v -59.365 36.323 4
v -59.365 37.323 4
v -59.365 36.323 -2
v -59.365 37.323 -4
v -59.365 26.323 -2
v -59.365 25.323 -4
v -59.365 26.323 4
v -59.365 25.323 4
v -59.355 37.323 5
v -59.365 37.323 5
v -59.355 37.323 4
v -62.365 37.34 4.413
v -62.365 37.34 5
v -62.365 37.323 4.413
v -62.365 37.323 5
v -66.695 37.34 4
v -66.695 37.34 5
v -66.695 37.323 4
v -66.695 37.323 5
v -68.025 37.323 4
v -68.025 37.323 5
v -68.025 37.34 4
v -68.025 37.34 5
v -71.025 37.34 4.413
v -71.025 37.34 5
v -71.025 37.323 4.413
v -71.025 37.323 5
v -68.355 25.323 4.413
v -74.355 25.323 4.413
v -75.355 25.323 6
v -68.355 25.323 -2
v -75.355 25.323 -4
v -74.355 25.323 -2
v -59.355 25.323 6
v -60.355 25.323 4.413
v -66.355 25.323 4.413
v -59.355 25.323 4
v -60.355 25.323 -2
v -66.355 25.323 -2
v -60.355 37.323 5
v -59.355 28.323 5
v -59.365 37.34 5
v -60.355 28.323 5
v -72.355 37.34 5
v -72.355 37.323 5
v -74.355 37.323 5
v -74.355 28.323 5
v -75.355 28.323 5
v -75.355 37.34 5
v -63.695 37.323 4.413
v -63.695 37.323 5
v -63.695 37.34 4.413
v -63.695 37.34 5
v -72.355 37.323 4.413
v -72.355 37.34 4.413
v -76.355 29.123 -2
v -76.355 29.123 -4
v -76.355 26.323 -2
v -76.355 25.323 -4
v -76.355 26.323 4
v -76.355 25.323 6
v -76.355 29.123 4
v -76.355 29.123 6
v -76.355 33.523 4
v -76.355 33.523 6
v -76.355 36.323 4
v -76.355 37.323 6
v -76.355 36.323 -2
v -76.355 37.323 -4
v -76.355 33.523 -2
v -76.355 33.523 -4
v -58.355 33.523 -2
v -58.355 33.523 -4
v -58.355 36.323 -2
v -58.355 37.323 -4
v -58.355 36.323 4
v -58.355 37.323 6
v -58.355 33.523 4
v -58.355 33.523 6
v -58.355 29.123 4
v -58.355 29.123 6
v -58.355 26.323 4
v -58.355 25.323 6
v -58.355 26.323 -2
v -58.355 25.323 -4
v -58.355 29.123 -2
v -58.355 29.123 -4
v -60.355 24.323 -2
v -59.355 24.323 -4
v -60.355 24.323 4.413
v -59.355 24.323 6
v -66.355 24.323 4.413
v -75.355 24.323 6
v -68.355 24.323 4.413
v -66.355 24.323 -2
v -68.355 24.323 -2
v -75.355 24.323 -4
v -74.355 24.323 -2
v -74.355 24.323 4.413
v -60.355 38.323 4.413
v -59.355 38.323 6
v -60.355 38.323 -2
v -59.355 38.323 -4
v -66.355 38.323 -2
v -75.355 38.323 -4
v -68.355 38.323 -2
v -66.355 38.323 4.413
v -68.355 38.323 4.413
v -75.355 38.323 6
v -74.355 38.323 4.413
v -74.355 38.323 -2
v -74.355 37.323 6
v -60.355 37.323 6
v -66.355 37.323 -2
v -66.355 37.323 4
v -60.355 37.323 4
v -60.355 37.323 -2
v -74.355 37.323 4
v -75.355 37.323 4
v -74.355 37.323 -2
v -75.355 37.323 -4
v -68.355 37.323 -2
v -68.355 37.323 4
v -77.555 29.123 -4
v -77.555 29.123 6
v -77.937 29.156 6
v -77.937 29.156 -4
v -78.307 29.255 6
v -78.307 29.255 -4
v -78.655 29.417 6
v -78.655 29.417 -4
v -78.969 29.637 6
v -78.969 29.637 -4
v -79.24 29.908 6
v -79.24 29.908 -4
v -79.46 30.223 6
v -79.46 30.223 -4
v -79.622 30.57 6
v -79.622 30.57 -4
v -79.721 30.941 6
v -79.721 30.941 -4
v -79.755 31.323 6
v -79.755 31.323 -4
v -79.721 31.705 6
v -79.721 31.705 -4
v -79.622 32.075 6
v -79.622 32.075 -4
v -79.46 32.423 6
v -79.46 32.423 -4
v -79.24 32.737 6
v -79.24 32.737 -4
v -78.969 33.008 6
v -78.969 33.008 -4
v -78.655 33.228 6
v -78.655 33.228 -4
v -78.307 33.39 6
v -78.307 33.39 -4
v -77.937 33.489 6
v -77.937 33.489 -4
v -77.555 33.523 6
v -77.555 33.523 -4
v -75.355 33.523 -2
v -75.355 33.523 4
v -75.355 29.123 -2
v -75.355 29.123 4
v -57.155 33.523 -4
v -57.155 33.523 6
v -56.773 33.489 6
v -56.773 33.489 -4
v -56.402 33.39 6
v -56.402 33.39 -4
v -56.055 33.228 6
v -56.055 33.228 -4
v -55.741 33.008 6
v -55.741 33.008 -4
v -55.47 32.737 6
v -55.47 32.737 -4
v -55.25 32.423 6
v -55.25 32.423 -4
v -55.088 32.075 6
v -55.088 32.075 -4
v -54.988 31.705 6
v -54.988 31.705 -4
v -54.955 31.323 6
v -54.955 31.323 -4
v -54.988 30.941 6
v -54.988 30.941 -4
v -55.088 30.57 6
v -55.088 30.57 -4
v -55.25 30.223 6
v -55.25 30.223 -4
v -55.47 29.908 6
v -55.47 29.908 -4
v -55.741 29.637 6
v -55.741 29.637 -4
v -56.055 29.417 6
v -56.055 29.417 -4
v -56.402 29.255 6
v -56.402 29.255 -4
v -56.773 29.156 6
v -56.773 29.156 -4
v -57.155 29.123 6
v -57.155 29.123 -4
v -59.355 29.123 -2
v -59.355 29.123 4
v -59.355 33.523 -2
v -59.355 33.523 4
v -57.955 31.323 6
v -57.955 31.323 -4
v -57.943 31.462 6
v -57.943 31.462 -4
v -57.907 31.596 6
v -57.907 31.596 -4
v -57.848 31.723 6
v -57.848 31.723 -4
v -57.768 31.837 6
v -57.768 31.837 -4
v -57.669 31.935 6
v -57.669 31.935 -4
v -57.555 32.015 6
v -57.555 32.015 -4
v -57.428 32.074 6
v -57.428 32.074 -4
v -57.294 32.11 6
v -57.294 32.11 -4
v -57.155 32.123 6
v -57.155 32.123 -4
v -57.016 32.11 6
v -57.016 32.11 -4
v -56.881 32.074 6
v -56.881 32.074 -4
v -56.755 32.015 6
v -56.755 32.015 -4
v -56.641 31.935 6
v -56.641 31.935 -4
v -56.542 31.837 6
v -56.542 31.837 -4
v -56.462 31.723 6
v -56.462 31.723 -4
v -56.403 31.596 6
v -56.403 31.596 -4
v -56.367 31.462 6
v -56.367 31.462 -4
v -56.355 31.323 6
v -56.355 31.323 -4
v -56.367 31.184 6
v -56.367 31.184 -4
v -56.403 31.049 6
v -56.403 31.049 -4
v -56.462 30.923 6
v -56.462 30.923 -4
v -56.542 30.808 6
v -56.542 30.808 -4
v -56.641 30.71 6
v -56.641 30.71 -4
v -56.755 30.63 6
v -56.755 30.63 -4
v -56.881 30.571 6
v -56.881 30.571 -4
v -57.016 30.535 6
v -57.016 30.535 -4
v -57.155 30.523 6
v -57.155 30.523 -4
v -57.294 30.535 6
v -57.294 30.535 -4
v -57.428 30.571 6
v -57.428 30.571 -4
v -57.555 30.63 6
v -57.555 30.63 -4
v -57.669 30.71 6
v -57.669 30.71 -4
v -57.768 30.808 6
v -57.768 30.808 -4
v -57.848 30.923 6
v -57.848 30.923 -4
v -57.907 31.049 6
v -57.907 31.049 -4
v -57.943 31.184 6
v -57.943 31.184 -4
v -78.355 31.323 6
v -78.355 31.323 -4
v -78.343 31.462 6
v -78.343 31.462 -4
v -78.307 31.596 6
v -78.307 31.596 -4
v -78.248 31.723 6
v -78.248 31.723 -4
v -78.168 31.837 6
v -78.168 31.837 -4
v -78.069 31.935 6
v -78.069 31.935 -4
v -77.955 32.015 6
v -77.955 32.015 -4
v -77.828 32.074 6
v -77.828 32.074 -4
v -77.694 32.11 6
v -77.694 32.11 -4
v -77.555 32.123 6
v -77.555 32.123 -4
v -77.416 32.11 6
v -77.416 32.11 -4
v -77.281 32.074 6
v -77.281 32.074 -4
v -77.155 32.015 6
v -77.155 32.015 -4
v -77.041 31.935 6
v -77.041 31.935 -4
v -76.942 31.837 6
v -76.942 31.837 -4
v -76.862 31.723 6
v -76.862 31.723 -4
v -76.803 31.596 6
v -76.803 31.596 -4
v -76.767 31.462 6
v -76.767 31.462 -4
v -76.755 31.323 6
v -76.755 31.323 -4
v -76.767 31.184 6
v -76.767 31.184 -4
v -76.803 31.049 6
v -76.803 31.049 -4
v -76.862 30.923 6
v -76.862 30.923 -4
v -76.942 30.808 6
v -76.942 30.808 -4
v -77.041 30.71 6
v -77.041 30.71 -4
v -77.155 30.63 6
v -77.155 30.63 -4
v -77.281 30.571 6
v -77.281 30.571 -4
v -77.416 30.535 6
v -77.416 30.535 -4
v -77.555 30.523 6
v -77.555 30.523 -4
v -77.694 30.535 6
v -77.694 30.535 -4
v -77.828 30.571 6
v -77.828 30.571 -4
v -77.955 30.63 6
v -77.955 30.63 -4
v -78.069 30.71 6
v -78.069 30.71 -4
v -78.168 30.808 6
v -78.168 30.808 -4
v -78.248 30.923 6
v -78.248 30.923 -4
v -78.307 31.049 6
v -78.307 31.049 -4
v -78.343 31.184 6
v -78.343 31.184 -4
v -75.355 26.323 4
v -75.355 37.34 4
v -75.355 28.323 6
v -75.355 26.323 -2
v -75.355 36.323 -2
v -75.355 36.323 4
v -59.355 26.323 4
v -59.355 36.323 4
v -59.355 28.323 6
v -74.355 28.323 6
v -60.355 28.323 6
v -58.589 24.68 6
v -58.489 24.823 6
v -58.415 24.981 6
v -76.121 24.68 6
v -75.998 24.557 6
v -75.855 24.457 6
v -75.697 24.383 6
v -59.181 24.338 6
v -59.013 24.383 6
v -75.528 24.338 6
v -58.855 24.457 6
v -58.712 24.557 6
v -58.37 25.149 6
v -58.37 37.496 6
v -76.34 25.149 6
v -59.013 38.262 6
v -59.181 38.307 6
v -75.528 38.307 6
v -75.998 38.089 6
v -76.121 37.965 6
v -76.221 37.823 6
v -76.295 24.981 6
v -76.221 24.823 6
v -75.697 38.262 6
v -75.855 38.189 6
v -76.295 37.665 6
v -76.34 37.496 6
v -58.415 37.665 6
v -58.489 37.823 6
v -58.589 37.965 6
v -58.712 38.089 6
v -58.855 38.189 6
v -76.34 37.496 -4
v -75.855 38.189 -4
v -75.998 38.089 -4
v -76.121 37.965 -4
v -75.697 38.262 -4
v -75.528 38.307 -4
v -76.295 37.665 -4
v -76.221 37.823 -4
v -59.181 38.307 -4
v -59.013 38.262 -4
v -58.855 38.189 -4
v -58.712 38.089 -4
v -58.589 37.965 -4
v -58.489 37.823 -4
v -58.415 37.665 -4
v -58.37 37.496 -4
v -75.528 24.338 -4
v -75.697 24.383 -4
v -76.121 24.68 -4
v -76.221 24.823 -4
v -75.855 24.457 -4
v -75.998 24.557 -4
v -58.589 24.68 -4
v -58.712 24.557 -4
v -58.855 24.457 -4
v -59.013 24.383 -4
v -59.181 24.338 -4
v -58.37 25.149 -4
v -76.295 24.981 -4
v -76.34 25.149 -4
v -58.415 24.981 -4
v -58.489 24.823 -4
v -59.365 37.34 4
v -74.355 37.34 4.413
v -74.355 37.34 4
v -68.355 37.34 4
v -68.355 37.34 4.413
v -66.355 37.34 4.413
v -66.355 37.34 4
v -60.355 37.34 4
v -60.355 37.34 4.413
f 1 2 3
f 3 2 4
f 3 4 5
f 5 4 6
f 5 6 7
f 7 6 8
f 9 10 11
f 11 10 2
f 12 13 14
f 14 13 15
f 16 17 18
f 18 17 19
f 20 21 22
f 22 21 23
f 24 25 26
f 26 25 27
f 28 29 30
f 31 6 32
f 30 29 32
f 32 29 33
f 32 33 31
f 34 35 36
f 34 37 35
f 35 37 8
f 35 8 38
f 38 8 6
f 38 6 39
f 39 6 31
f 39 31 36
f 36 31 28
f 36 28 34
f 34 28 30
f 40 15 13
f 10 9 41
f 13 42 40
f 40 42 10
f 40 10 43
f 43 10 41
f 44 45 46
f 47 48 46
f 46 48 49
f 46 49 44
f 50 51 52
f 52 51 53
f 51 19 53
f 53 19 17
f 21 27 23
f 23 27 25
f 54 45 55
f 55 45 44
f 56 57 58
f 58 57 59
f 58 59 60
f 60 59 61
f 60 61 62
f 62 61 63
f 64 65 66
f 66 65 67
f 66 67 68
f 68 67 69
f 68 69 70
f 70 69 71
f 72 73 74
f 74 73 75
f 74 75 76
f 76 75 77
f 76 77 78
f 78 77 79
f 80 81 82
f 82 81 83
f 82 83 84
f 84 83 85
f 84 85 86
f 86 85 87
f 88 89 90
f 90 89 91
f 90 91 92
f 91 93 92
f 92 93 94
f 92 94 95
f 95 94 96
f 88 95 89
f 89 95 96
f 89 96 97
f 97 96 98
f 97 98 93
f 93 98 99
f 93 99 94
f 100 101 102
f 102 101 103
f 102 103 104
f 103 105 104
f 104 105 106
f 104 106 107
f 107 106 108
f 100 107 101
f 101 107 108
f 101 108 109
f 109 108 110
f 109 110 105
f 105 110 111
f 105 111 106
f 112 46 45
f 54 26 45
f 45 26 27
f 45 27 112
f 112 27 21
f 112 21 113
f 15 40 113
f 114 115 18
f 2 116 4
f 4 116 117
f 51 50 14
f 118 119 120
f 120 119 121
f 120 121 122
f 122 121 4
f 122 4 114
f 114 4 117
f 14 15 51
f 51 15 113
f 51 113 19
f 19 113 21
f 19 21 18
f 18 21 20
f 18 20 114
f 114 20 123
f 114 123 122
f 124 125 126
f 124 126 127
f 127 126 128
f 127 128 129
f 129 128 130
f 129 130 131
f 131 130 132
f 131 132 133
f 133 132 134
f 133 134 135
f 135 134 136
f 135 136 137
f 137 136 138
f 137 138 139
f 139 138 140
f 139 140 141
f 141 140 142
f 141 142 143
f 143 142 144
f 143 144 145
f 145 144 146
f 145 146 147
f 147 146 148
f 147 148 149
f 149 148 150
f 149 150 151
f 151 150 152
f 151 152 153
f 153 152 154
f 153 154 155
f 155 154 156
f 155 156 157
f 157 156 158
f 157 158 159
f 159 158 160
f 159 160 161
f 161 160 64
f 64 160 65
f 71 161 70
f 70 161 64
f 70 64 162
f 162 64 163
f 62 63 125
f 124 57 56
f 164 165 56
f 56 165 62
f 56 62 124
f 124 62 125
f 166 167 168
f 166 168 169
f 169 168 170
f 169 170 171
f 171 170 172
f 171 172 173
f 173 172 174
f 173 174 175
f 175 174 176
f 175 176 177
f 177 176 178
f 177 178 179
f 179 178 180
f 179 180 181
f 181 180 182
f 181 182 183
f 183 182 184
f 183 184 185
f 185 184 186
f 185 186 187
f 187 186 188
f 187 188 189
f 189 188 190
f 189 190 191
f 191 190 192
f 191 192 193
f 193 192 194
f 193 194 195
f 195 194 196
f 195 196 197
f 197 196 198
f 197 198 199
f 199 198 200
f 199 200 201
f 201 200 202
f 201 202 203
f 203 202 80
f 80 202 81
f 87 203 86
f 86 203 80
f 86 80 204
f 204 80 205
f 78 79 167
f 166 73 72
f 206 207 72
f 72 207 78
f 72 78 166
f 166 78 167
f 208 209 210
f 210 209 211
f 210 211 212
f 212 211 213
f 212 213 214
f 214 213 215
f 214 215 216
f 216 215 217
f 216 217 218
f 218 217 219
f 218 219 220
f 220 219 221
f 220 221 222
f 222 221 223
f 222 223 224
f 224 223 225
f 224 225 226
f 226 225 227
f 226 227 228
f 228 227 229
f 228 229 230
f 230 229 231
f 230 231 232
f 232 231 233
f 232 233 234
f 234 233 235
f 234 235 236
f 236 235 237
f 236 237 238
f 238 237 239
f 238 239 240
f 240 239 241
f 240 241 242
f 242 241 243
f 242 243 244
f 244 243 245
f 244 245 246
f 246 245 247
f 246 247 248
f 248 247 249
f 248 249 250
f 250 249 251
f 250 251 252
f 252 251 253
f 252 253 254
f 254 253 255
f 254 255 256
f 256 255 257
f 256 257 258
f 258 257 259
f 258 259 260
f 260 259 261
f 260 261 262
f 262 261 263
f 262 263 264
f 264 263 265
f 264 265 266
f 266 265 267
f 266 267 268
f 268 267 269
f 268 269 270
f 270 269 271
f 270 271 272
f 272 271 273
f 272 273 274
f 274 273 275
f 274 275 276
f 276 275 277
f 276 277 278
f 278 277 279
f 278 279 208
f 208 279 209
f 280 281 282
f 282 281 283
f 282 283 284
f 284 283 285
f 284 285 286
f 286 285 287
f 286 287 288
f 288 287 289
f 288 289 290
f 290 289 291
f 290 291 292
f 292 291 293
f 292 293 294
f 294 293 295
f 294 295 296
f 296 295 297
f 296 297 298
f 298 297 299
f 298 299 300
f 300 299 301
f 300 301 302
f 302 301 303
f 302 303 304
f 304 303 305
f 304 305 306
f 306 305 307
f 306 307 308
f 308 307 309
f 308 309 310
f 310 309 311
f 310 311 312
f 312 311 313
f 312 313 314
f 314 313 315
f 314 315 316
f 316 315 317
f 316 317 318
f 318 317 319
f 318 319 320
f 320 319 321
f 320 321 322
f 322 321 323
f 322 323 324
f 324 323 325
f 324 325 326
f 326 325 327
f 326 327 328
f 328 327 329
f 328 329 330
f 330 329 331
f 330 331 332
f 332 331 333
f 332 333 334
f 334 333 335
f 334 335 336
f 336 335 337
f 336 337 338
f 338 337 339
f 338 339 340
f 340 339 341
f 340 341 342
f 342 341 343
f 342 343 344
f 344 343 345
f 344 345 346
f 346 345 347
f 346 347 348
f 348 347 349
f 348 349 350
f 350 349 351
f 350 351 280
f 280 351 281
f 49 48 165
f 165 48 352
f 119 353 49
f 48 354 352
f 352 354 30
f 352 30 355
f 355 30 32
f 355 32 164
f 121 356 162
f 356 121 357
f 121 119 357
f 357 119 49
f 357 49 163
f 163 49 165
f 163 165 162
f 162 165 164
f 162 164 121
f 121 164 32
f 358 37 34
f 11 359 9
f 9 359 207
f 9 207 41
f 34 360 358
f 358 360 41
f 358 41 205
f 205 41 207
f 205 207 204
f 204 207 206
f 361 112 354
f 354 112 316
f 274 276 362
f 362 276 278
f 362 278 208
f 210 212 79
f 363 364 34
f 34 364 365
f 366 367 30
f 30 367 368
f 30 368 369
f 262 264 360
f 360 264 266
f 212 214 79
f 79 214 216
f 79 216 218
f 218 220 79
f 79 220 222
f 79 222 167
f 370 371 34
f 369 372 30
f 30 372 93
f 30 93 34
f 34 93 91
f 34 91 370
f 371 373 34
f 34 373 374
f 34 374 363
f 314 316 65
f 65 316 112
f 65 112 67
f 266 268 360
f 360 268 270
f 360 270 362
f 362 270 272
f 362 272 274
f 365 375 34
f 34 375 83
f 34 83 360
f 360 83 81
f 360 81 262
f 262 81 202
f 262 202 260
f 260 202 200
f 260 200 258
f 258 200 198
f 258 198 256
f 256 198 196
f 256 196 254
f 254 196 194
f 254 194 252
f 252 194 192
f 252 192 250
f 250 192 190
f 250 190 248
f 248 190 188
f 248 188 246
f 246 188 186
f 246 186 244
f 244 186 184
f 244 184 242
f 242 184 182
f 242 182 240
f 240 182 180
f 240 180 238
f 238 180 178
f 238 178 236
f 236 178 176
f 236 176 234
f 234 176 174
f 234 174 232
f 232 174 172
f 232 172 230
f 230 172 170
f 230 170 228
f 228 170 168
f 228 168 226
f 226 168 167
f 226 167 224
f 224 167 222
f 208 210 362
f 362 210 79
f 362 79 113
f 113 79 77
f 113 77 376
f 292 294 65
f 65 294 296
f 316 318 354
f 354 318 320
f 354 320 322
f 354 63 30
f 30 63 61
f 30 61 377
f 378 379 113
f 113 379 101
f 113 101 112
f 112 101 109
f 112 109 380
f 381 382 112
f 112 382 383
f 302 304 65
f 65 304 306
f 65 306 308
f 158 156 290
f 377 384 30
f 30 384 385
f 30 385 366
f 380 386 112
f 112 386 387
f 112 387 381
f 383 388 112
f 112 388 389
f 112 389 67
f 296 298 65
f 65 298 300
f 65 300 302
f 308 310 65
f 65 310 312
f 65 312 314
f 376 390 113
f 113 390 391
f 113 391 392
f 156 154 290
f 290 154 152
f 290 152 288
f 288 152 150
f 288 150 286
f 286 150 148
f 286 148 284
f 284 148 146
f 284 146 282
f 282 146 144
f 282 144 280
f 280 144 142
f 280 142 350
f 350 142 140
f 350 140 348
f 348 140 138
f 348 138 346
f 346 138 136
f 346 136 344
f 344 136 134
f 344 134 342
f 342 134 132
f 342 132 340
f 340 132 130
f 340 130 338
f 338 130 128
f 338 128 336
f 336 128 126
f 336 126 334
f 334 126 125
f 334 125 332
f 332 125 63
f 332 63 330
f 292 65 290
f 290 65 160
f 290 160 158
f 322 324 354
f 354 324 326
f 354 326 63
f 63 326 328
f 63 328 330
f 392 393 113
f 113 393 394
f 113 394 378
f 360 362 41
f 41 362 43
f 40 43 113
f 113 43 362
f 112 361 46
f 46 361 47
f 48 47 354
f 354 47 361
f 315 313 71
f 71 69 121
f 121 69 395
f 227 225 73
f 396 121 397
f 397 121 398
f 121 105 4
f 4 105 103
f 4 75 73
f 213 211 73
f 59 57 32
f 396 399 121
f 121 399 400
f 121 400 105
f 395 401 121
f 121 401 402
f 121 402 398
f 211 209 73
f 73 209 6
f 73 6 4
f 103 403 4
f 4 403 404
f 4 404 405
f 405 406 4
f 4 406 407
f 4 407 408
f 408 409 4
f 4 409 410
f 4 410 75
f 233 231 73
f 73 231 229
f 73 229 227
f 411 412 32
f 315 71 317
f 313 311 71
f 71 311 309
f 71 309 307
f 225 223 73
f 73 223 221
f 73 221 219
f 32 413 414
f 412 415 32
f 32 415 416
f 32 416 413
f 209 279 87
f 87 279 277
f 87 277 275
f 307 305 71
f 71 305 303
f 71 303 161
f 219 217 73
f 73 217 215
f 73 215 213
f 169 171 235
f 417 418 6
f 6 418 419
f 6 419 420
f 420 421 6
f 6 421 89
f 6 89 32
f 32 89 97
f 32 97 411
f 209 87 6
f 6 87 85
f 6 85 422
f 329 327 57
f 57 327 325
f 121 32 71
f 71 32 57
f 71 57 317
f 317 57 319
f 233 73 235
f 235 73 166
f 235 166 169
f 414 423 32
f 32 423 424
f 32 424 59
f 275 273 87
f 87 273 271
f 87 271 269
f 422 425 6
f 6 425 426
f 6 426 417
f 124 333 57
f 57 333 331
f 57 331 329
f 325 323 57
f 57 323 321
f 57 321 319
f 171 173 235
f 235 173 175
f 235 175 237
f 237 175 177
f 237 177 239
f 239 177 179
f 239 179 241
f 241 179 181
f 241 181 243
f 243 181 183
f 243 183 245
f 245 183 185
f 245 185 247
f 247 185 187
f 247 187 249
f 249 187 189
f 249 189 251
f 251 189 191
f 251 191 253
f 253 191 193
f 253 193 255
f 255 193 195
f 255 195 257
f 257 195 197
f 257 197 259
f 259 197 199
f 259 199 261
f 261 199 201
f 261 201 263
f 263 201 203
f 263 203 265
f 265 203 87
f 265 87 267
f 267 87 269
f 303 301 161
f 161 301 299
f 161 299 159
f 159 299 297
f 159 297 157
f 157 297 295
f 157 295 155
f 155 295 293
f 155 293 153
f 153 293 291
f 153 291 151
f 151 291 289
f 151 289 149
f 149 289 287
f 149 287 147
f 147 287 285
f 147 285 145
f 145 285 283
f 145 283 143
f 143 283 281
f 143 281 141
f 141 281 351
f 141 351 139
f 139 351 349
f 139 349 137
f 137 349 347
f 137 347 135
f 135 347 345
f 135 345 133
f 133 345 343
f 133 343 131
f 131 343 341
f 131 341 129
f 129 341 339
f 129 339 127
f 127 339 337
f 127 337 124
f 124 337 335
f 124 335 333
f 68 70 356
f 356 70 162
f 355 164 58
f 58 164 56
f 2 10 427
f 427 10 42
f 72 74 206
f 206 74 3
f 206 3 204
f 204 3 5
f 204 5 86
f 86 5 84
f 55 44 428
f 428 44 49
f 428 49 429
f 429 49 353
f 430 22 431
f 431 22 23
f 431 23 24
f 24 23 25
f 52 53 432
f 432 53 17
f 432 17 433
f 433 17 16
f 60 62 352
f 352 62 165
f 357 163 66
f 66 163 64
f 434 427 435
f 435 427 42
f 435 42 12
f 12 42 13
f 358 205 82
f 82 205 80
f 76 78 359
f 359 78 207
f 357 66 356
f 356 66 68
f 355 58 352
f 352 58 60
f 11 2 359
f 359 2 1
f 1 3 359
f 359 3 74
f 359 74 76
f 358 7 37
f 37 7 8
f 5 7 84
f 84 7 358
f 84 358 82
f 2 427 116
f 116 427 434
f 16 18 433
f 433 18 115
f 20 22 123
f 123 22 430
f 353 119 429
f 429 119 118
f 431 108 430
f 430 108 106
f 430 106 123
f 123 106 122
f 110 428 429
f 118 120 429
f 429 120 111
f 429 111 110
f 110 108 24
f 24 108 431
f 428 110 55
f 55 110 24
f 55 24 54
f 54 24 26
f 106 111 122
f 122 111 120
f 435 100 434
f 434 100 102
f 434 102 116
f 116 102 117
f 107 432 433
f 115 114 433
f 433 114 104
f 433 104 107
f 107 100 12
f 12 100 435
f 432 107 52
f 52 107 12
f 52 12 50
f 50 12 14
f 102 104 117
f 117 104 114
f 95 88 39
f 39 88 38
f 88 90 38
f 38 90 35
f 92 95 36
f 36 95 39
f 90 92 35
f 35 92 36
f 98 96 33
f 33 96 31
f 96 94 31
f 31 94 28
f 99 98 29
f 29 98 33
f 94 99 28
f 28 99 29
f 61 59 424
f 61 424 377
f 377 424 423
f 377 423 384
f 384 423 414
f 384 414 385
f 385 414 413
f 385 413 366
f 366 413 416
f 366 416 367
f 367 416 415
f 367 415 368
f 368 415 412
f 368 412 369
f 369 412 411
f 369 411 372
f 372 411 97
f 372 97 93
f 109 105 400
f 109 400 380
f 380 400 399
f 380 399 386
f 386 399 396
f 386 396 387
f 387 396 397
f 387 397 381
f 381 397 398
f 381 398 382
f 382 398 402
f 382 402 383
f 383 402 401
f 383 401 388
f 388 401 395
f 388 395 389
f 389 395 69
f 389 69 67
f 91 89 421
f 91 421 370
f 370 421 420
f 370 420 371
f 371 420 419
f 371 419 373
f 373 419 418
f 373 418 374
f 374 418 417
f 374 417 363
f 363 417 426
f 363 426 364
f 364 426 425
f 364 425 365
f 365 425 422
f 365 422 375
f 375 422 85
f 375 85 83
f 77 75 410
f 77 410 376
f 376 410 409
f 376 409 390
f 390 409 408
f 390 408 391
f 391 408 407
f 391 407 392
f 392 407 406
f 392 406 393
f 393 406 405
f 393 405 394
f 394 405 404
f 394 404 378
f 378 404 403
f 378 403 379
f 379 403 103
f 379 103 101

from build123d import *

# Parameters (mm, degrees)
SKETCH_2_W           = 18
SKETCH_2_H           = 14
EXTRUDE_1_DEPTH      = 4
SHELL_1_T            = -1
SKETCH_3_W           = 2.5
SKETCH_3_H           = 2
CUT_EXTRUDE_1_DEPTH  = 4
SKETCH_4_W           = 1.5
SKETCH_4_H           = 6
EXTRUDE_2_DEPTH      = 5
SKETCH_5_W           = 1.5
SKETCH_5_H           = 6
EXTRUDE_3_DEPTH      = 5
SKETCH_6_R           = 1.1
CUT_EXTRUDE_2_DEPTH  = 5
FILLET_1_R           = 3
SKETCH_7_W           = 5.917960412
SKETCH_7_H           = 8.297832083
CUT_EXTRUDE_3_DEPTH  = 10
SKETCH_8_R           = 0.7
EXTRUDE_5_DEPTH      = 3
SKETCH_9_W           = 5.283067479
SKETCH_9_H           = 7.875128382
CUT_EXTRUDE_6_DEPTH  = 3
SKETCH_10_R          = 0.7
EXTRUDE_6_DEPTH      = 3
SKETCH_11_R          = 0.7
EXTRUDE_7_DEPTH      = 1
FILLET_6_R           = 1
SKETCH_12_W          = 30.892671625
SKETCH_12_H          = 21.919086058
CUT_EXTRUDE_7_DEPTH  = 1
SKETCH_13_W          = 18
SKETCH_13_H          = 14
SKETCH_13_W_2        = 16
SKETCH_13_H_2        = 12
EXTRUDE_8_DEPTH      = 2
EXTRUDE_START        = 2
SKETCH_14_R          = 0.7
EXTRUDE_9_DEPTH      = 2
SKETCH_15_W          = 2
SKETCH_15_H          = 10
EXTRUDE_11_DEPTH     = 1
SKETCH_16_W          = 3
SKETCH_16_H          = 3
CUT_EXTRUDE_9_DEPTH  = 82.19627022
SKETCH_17_R          = 1.2
CUT_EXTRUDE_10_DEPTH = 89.625360281
SKETCH_18_W          = 18
SKETCH_18_H          = 14
SKETCH_18_W_2        = 16
SKETCH_18_H_2        = 12
EXTRUDE_12_DEPTH     = 10
SKETCH_19_R          = 1.2
SKETCH_19_R_2        = 0.8
EXTRUDE_14_DEPTH     = 5
SKETCH_20_R          = 0.8
EXTRUDE_15_DEPTH     = 10
SKETCH_21_W          = 2.939386231
SKETCH_21_H          = 10
SKETCH_21_W_2        = 3
SKETCH_21_W_3        = 3.044568854
CUT_EXTRUDE_11_DEPTH = 82.472905297
SKETCH_22_W          = 13
SKETCH_22_H          = 3.8
CUT_EXTRUDE_12_DEPTH = 45.806028471
SKETCH_23_W          = 27.889217439
SKETCH_23_H          = 16.978710397
CUT_EXTRUDE_13_DEPTH = 5
SKETCH_24_W          = 18
SKETCH_24_H          = 14
SKETCH_24_W_2        = 15.99
SKETCH_24_H_2        = 12
EXTRUDE_16_DEPTH     = 2
SKETCH_25_W          = 18
SKETCH_25_H          = 14
SKETCH_25_W_2        = 16
SKETCH_25_H_2        = 12.017260671
EXTRUDE_17_DEPTH     = 2
SKETCH_26_W          = 6
SKETCH_26_H          = 1
EXTRUDE_18_DEPTH     = 1
SKETCH_27_W          = 6
SKETCH_27_H          = 1
EXTRUDE_19_DEPTH     = 1.01
SKETCH_28_W          = 15.99
SKETCH_28_H          = 6
EXTRUDE_20_DEPTH     = 1
EXTRUDE_START_2      = -1
SKETCH_29_W          = 15.99
SKETCH_29_H          = 6
EXTRUDE_21_DEPTH     = 1
SKETCH_30_W          = 6
SKETCH_30_H          = 6.412534926
CUT_EXTRUDE_14_DEPTH = 82.19627022
FILLET_7_R           = 1


# Some blends are built 0.0001 mm under size
with BuildPart() as part:
    # Эскиз2 → Бобышка-Вытянуть1 (new body)
    with BuildSketch(Plane.XY):
        with Locations((-67.35483871, 31.322580645)):
            Rectangle(SKETCH_2_W, SKETCH_2_H)
    extrude(amount=EXTRUDE_1_DEPTH)

    # Оболочка1
    shell_1_openings = [part.faces().sort_by_distance(p)[0] for p in [
        (-67.35483871, 31.322580645, 4),
    ]]
    offset(amount=SHELL_1_T, openings=shell_1_openings, kind=Kind.INTERSECTION)

    # Эскиз3 → Вырез-Вытянуть1 (cut)
    with BuildSketch(Plane.XY.offset(1)):
        with Locations((-69.60483871, 36.322580645)):
            Rectangle(SKETCH_3_W, SKETCH_3_H)
        with Locations((-74.10483871, 36.322580645)):
            Rectangle(SKETCH_3_W, SKETCH_3_H)
        with Locations((-65.10483871, 36.322580645)):
            Rectangle(SKETCH_3_W, SKETCH_3_H)
        with Locations((-60.60483871, 36.322580645)):
            Rectangle(SKETCH_3_W, SKETCH_3_H)
        with Locations((-69.60483871, 32.992580645)):
            Rectangle(SKETCH_3_W, SKETCH_3_H)
        with Locations((-65.10483871, 32.992580645)):
            Rectangle(SKETCH_3_W, SKETCH_3_H)
        with Locations((-60.60483871, 32.992580645)):
            Rectangle(SKETCH_3_W, SKETCH_3_H)
        with Locations((-69.60483871, 29.662580645)):
            Rectangle(SKETCH_3_W, SKETCH_3_H)
        with Locations((-65.10483871, 29.662580645)):
            Rectangle(SKETCH_3_W, SKETCH_3_H)
        with Locations((-60.60483871, 29.662580645)):
            Rectangle(SKETCH_3_W, SKETCH_3_H)
        with Locations((-69.60483871, 26.332580645)):
            Rectangle(SKETCH_3_W, SKETCH_3_H)
        with Locations((-65.10483871, 26.332580645)):
            Rectangle(SKETCH_3_W, SKETCH_3_H)
        with Locations((-60.60483871, 26.332580645)):
            Rectangle(SKETCH_3_W, SKETCH_3_H)
        with Locations((-74.10483871, 32.992580645)):
            Rectangle(SKETCH_3_W, SKETCH_3_H)
        with Locations((-74.10483871, 29.662580645)):
            Rectangle(SKETCH_3_W, SKETCH_3_H)
        with Locations((-74.10483871, 26.332580645)):
            Rectangle(SKETCH_3_W, SKETCH_3_H)
    extrude(amount=-CUT_EXTRUDE_1_DEPTH, mode=Mode.SUBTRACT)

    # Эскиз4 → Бобышка-Вытянуть2 (add)
    with BuildSketch(Plane.ZY.offset(76.35483871)):
        with Locations((3.25, 31.322580645)):
            Rectangle(SKETCH_4_W, SKETCH_4_H)
    extrude(amount=EXTRUDE_2_DEPTH)

    # Эскиз5 → Бобышка-Вытянуть3 (add)
    with BuildSketch(Plane(origin=(-58.35483871, 0, 0), x_dir=(0, 0, -1), z_dir=(1, 0, 0))):
        with Locations((-3.25, 31.322580645)):
            Rectangle(SKETCH_5_W, SKETCH_5_H)
    extrude(amount=EXTRUDE_3_DEPTH)

    # Эскиз6 → Вырез-Вытянуть2 (cut)
    with BuildSketch(Plane(origin=(0, 0, 2.5), x_dir=(-1, 0, 0), z_dir=(0, 0, -1))):
        with Locations(Location((55.85483871, 31.322580645, 0), (0, 0, 90))):
            Circle(SKETCH_6_R)
        with Locations(Location((78.85483871, 31.322580645, 0), (0, 0, 90))):
            Circle(SKETCH_6_R)
    extrude(amount=-CUT_EXTRUDE_2_DEPTH, mode=Mode.SUBTRACT)

    # Скругление1
    fillet_1_edges = [part.edges().sort_by_distance(p)[0] for p in [
        (-81.35483871, 28.322580645, 3.25),
        (-81.35483871, 34.322580645, 3.25),
        (-53.35483871, 28.322580645, 3.25),
        (-53.35483871, 34.322580645, 3.25),
    ]]
    fillet(fillet_1_edges, radius=FILLET_1_R - 0.0001)  # a hair under: the kernel refuses the full size

    # Эскиз7 → Вырез-Вытянуть3 (cut)
    with BuildSketch(Plane.XY.offset(4)):
        with Locations((-79.313818916, 31.798685765)):
            Rectangle(SKETCH_7_W, SKETCH_7_H)
    extrude(amount=-CUT_EXTRUDE_3_DEPTH, mode=Mode.SUBTRACT)

    # Эскиз8 → Бобышка-Вытянуть5 (add)
    with BuildSketch(Plane.XY.offset(4)):
        with BuildLine():
            Line((-77.55483871, 33.522580645), (-76.35483871, 33.522580645))
            Line((-76.35483871, 33.522580645), (-76.35483871, 29.122580645))
            Line((-76.35483871, 29.122580645), (-77.55483871, 29.122580645))
            ThreePointArc((-77.55483871, 29.122580645), (-79.75483871, 31.322580645), (-77.55483871, 33.522580645))
        make_face()
        with Locations((-77.55483871, 31.322580645)):
            Circle(SKETCH_8_R, mode=Mode.SUBTRACT)
    extrude(amount=-EXTRUDE_5_DEPTH)

    # Эскиз9 → Вырез-Вытянуть6 (cut)
    with BuildSketch(Plane.XY.offset(4)):
        with Locations((-55.713304971, 31.190086721)):
            Rectangle(SKETCH_9_W, SKETCH_9_H)
    extrude(amount=-CUT_EXTRUDE_6_DEPTH, mode=Mode.SUBTRACT)

    # Эскиз10 → Бобышка-Вытянуть6 (add)
    with BuildSketch(Plane.XY.offset(4)):
        with BuildLine():
            Line((-57.15483871, 33.522580645), (-58.35483871, 33.522580645))
            Line((-58.35483871, 33.522580645), (-58.35483871, 29.122580645))
            Line((-58.35483871, 29.122580645), (-57.15483871, 29.122580645))
            ThreePointArc((-57.15483871, 29.122580645), (-54.95483871, 31.322580645), (-57.15483871, 33.522580645))
        make_face()
        with Locations((-57.15483871, 31.322580645)):
            Circle(SKETCH_10_R, mode=Mode.SUBTRACT)
    extrude(amount=-EXTRUDE_6_DEPTH)

    # Эскиз11 → Бобышка-Вытянуть7 (add)
    # profile 1 of 2: a face of its own
    with BuildSketch(Plane(origin=(0, 0, 1), x_dir=(-1, 0, 0), z_dir=(0, 0, -1))):
        with BuildLine():
            Line((57.15483871, 33.522580645), (58.35483871, 33.522580645))
            Line((58.35483871, 33.522580645), (58.35483871, 29.122580645))
            Line((58.35483871, 29.122580645), (57.15483871, 29.122580645))
            ThreePointArc((57.15483871, 29.122580645), (54.95483871, 31.322580645), (57.15483871, 33.522580645))
        make_face()
        with Locations(Location((57.15483871, 31.322580645, 0), (0, 0, 180))):
            Circle(SKETCH_11_R, mode=Mode.SUBTRACT)
    # profile 2 of 2: a face of its own
    with BuildSketch(Plane(origin=(0, 0, 1), x_dir=(-1, 0, 0), z_dir=(0, 0, -1))):
        with BuildLine():
            Line((77.55483871, 33.522580645), (76.35483871, 33.522580645))
            Line((76.35483871, 33.522580645), (76.35483871, 29.122580645))
            Line((76.35483871, 29.122580645), (77.55483871, 29.122580645))
            ThreePointArc((77.55483871, 29.122580645), (79.75483871, 31.322580645), (77.55483871, 33.522580645))
        make_face()
        with Locations(Location((77.55483871, 31.322580645, 0), (0, 0, 180))):
            Circle(SKETCH_11_R, mode=Mode.SUBTRACT)
    extrude(amount=EXTRUDE_7_DEPTH)

    # Скругление6
    # the kernel refuses this fillet: 1 mm, written as the material it takes off along each edge
    with BuildSketch(Plane(origin=(-76.35483871, 29.122580645, 0), x_dir=(1, 0, 0), z_dir=(0, -1, 0))) as fillet_6_piece_1:
        with BuildLine():
            CenterArc((FILLET_6_R, FILLET_6_R), FILLET_6_R, 180, 90)
            Line((0, FILLET_6_R), (-FILLET_6_R * 0.02, FILLET_6_R))
            Line((-FILLET_6_R * 0.02, FILLET_6_R), (-FILLET_6_R * 0.02, -FILLET_6_R * 0.02))
            Line((-FILLET_6_R * 0.02, -FILLET_6_R * 0.02), (FILLET_6_R, -FILLET_6_R * 0.02))
            Line((FILLET_6_R, -FILLET_6_R * 0.02), (FILLET_6_R, 0))
        make_face()
    extrude(amount=4.8, mode=Mode.SUBTRACT)
    with BuildSketch(Plane(origin=(-77.55483871, 31.322580645, 0), x_dir=(0, -1, 0), z_dir=(1, 0, 0))) as fillet_6_piece_2:
        with BuildLine():
            CenterArc((2.2 - FILLET_6_R, -FILLET_6_R), FILLET_6_R, 0, 90)
            Line((2.2, -FILLET_6_R), (2.2 + FILLET_6_R * 0.02, -FILLET_6_R))
            Line((2.2 + FILLET_6_R * 0.02, -FILLET_6_R), (2.2 + FILLET_6_R * 0.02, FILLET_6_R * 0.02))
            Line((2.2 + FILLET_6_R * 0.02, FILLET_6_R * 0.02), (2.2 - FILLET_6_R, FILLET_6_R * 0.02))
            Line((2.2 - FILLET_6_R, FILLET_6_R * 0.02), (2.2 - FILLET_6_R, 0))
        make_face()
    revolve(axis=Axis((-77.55483871, 31.322580645, 0), (0, 0, -1)), revolution_arc=180, mode=Mode.SUBTRACT)
    with BuildSketch(Plane(origin=(-77.55483871, 33.522580645, 0), x_dir=(0, -1, 0), z_dir=(1, 0, 0)), Plane(origin=(-76.35483871, 29.122580645, 0), x_dir=(0, 1, 0), z_dir=(-1, 0, 0))) as fillet_6_piece_3:
        with BuildLine():
            CenterArc((FILLET_6_R, -FILLET_6_R), FILLET_6_R, 90, 90)
            Line((0, -FILLET_6_R), (-FILLET_6_R * 0.02, -FILLET_6_R))
            Line((-FILLET_6_R * 0.02, -FILLET_6_R), (-FILLET_6_R * 0.02, FILLET_6_R * 0.02))
            Line((-FILLET_6_R * 0.02, FILLET_6_R * 0.02), (FILLET_6_R, FILLET_6_R * 0.02))
            Line((FILLET_6_R, FILLET_6_R * 0.02), (FILLET_6_R, 0))
        make_face()
    extrude(amount=1.2, mode=Mode.SUBTRACT)
    with BuildSketch(Plane(origin=(-58.35483871, 38.322580645, 0), x_dir=(-1, 0, 0), z_dir=(0, -1, 0))) as fillet_6_piece_4:
        with BuildLine():
            CenterArc((FILLET_6_R, -FILLET_6_R), FILLET_6_R, 90, 90)
            Line((0, -FILLET_6_R), (-FILLET_6_R * 0.02, -FILLET_6_R))
            Line((-FILLET_6_R * 0.02, -FILLET_6_R), (-FILLET_6_R * 0.02, FILLET_6_R * 0.02))
            Line((-FILLET_6_R * 0.02, FILLET_6_R * 0.02), (FILLET_6_R, FILLET_6_R * 0.02))
            Line((FILLET_6_R, FILLET_6_R * 0.02), (FILLET_6_R, 0))
        make_face()
    extrude(amount=4.8, mode=Mode.SUBTRACT)
    with BuildSketch(Plane(origin=(-57.15483871, 31.322580645, 0), x_dir=(0, -1, 0), z_dir=(-1, 0, 0))) as fillet_6_piece_5:
        with BuildLine():
            CenterArc((2.2 - FILLET_6_R, FILLET_6_R), FILLET_6_R, 270, 90)
            Line((2.2, FILLET_6_R), (2.2 + FILLET_6_R * 0.02, FILLET_6_R))
            Line((2.2 + FILLET_6_R * 0.02, FILLET_6_R), (2.2 + FILLET_6_R * 0.02, -FILLET_6_R * 0.02))
            Line((2.2 + FILLET_6_R * 0.02, -FILLET_6_R * 0.02), (2.2 - FILLET_6_R, -FILLET_6_R * 0.02))
            Line((2.2 - FILLET_6_R, -FILLET_6_R * 0.02), (2.2 - FILLET_6_R, 0))
        make_face()
    revolve(axis=Axis((-57.15483871, 31.322580645, 0), (0, 0, 1)), revolution_arc=180, mode=Mode.SUBTRACT)
    with BuildSketch(Plane(origin=(-58.35483871, 29.122580645, 0), x_dir=(0, 1, 0), z_dir=(1, 0, 0)), Plane(origin=(-57.15483871, 33.522580645, 0), x_dir=(0, -1, 0), z_dir=(-1, 0, 0))) as fillet_6_piece_6:
        with BuildLine():
            CenterArc((FILLET_6_R, FILLET_6_R), FILLET_6_R, 180, 90)
            Line((0, FILLET_6_R), (-FILLET_6_R * 0.02, FILLET_6_R))
            Line((-FILLET_6_R * 0.02, FILLET_6_R), (-FILLET_6_R * 0.02, -FILLET_6_R * 0.02))
            Line((-FILLET_6_R * 0.02, -FILLET_6_R * 0.02), (FILLET_6_R, -FILLET_6_R * 0.02))
            Line((FILLET_6_R, -FILLET_6_R * 0.02), (FILLET_6_R, 0))
        make_face()
    extrude(amount=1.2, mode=Mode.SUBTRACT)
    with BuildSketch(Plane(origin=(-76.35483871, 31.622580645, 0), x_dir=(1, 0, 0), z_dir=(0, -1, 0))) as fillet_6_piece_7a_section:
        with BuildLine():
            CenterArc((FILLET_6_R, FILLET_6_R), FILLET_6_R, 180, 90)
            Line((0, FILLET_6_R), (-FILLET_6_R * 0.02, FILLET_6_R))
            Line((-FILLET_6_R * 0.02, FILLET_6_R), (-FILLET_6_R * 0.02, -FILLET_6_R * 0.02))
            Line((-FILLET_6_R * 0.02, -FILLET_6_R * 0.02), (FILLET_6_R, -FILLET_6_R * 0.02))
            Line((FILLET_6_R, -FILLET_6_R * 0.02), (FILLET_6_R, 0))
        make_face()
    fillet_6_piece_7a = extrude(amount=7.3, mode=Mode.PRIVATE)
    fillet_6_piece_7a = split(fillet_6_piece_7a, bisect_by=Plane(origin=(-76.128443595, 29.122580645, 0.226395114), z_dir=(0, 1, 0)), keep=Keep.TOP, mode=Mode.PRIVATE)
    with BuildSketch(Plane(origin=(-73.85483871, 29.122580645, 0), x_dir=(0, 1, 0), z_dir=(-1, 0, 0))) as fillet_6_piece_7b_section:
        with BuildLine():
            CenterArc((FILLET_6_R, -FILLET_6_R), FILLET_6_R, 90, 90)
            Line((0, -FILLET_6_R), (-FILLET_6_R * 0.02, -FILLET_6_R))
            Line((-FILLET_6_R * 0.02, -FILLET_6_R), (-FILLET_6_R * 0.02, FILLET_6_R * 0.02))
            Line((-FILLET_6_R * 0.02, FILLET_6_R * 0.02), (FILLET_6_R, FILLET_6_R * 0.02))
            Line((FILLET_6_R, FILLET_6_R * 0.02), (FILLET_6_R, 0))
        make_face()
    fillet_6_piece_7b = extrude(amount=3.7, mode=Mode.PRIVATE)
    fillet_6_piece_7b = split(fillet_6_piece_7b, bisect_by=Plane(origin=(-76.35483871, 29.348975759, 0.226395114), z_dir=(1, 0, 0)), keep=Keep.TOP, mode=Mode.PRIVATE)
    fillet_6_piece_7 = fillet_6_piece_7a & fillet_6_piece_7b
    add(fillet_6_piece_7, mode=Mode.SUBTRACT)
    with BuildSketch(Plane(origin=(-57.15483871, 33.522580645, 0), x_dir=(0, -1, 0), z_dir=(-1, 0, 0))) as fillet_6_piece_8a_section:
        with BuildLine():
            CenterArc((FILLET_6_R, FILLET_6_R), FILLET_6_R, 180, 90)
            Line((0, FILLET_6_R), (-FILLET_6_R * 0.02, FILLET_6_R))
            Line((-FILLET_6_R * 0.02, FILLET_6_R), (-FILLET_6_R * 0.02, -FILLET_6_R * 0.02))
            Line((-FILLET_6_R * 0.02, -FILLET_6_R * 0.02), (FILLET_6_R, -FILLET_6_R * 0.02))
            Line((FILLET_6_R, -FILLET_6_R * 0.02), (FILLET_6_R, 0))
        make_face()
    fillet_6_piece_8a = extrude(amount=3.7, mode=Mode.PRIVATE)
    fillet_6_piece_8a = split(fillet_6_piece_8a, bisect_by=Plane(origin=(-58.35483871, 33.296185531, 0.226395114), z_dir=(-1, 0, 0)), keep=Keep.TOP, mode=Mode.PRIVATE)
    with BuildSketch(Plane(origin=(-58.35483871, 38.322580645, 0), x_dir=(-1, 0, 0), z_dir=(0, -1, 0))) as fillet_6_piece_8b_section:
        with BuildLine():
            CenterArc((FILLET_6_R, -FILLET_6_R), FILLET_6_R, 90, 90)
            Line((0, -FILLET_6_R), (-FILLET_6_R * 0.02, -FILLET_6_R))
            Line((-FILLET_6_R * 0.02, -FILLET_6_R), (-FILLET_6_R * 0.02, FILLET_6_R * 0.02))
            Line((-FILLET_6_R * 0.02, FILLET_6_R * 0.02), (FILLET_6_R, FILLET_6_R * 0.02))
            Line((FILLET_6_R, FILLET_6_R * 0.02), (FILLET_6_R, 0))
        make_face()
    fillet_6_piece_8b = extrude(amount=7.3, mode=Mode.PRIVATE)
    fillet_6_piece_8b = split(fillet_6_piece_8b, bisect_by=Plane(origin=(-58.581233824, 33.522580645, 0.226395114), z_dir=(0, -1, 0)), keep=Keep.TOP, mode=Mode.PRIVATE)
    fillet_6_piece_8 = fillet_6_piece_8a & fillet_6_piece_8b
    add(fillet_6_piece_8, mode=Mode.SUBTRACT)

    # Эскиз12 → Вырез-Вытянуть7 (cut)
    with BuildSketch(Plane(origin=(0, 0, 0), x_dir=(-1, 0, 0), z_dir=(0, 0, -1))):
        with Locations((68.526392305, 30.136365087)):
            Rectangle(SKETCH_12_W, SKETCH_12_H)
    extrude(amount=-CUT_EXTRUDE_7_DEPTH, mode=Mode.SUBTRACT)

    # Эскиз13 → Бобышка-Вытянуть8 (add)
    with BuildSketch(Plane.XY.offset(4)):
        with Locations((-67.35483871, 31.322580645)):
            Rectangle(SKETCH_13_W, SKETCH_13_H)
        with Locations((-67.35483871, 31.322580645)):
            Rectangle(SKETCH_13_W_2, SKETCH_13_H_2, mode=Mode.SUBTRACT)
    extrude(amount=EXTRUDE_8_DEPTH)

    # Эскиз14 → Бобышка-Вытянуть9 (add)
    # profile 1 of 2: a face of its own
    with BuildSketch(Plane.XY.offset(4).offset(EXTRUDE_START)):
        with BuildLine():
            Line((-77.55483871, 33.522580645), (-76.35483871, 33.522580645))
            Line((-76.35483871, 33.522580645), (-76.35483871, 29.122580645))
            Line((-76.35483871, 29.122580645), (-77.55483871, 29.122580645))
            ThreePointArc((-77.55483871, 29.122580645), (-79.75483871, 31.322580645), (-77.55483871, 33.522580645))
        make_face()
        with Locations((-77.55483871, 31.322580645)):
            Circle(SKETCH_14_R, mode=Mode.SUBTRACT)
    # profile 2 of 2: a face of its own
    with BuildSketch(Plane.XY.offset(4).offset(EXTRUDE_START)):
        with BuildLine():
            Line((-57.15483871, 33.522580645), (-58.35483871, 33.522580645))
            Line((-58.35483871, 33.522580645), (-58.35483871, 29.122580645))
            Line((-58.35483871, 29.122580645), (-57.15483871, 29.122580645))
            ThreePointArc((-57.15483871, 29.122580645), (-54.95483871, 31.322580645), (-57.15483871, 33.522580645))
        make_face()
        with Locations((-57.15483871, 31.322580645)):
            Circle(SKETCH_14_R, mode=Mode.SUBTRACT)
    extrude(amount=-EXTRUDE_9_DEPTH)

    # Эскиз15 → Бобышка-Вытянуть11 (add)
    with BuildSketch(Plane.XY.offset(6)):
        with Locations((-59.35483871, 33.322580645)):
            Rectangle(SKETCH_15_W, SKETCH_15_H)
        with Locations((-75.35483871, 33.322580645)):
            Rectangle(SKETCH_15_W, SKETCH_15_H)
    extrude(amount=-EXTRUDE_11_DEPTH)

    # Эскиз16 → Вырез-Вытянуть9 (cut, through all)
    with BuildSketch(Plane(origin=(0, 38.322580645, 0), x_dir=(1, 0, 0), z_dir=(0, 1, 0))):
        with Locations((-73.85483871, -3.5)):
            Rectangle(SKETCH_16_W, SKETCH_16_H)
        with Locations((-69.52483871, -3.5)):
            Rectangle(SKETCH_16_W, SKETCH_16_H)
        with Locations((-65.19483871, -3.5)):
            Rectangle(SKETCH_16_W, SKETCH_16_H)
        with Locations((-60.86483871, -3.5)):
            Rectangle(SKETCH_16_W, SKETCH_16_H)
    extrude(amount=-CUT_EXTRUDE_9_DEPTH, mode=Mode.SUBTRACT)

    # Эскиз17 → Вырез-Вытянуть10 (cut, through all)
    with BuildSketch(Plane(origin=(0, 0, 1), x_dir=(-1, 0, 0), z_dir=(0, 0, -1))):
        with Locations((57.15483871, 31.322580645)):
            Circle(SKETCH_17_R)
        with Locations((77.55483871, 31.322580645)):
            Circle(SKETCH_17_R)
    extrude(amount=-CUT_EXTRUDE_10_DEPTH, mode=Mode.SUBTRACT)

    # Эскиз18 → Бобышка-Вытянуть12 (add)
    with BuildSketch(Plane(origin=(0, 0, 1), x_dir=(-1, 0, 0), z_dir=(0, 0, -1))):
        with Locations((67.35483871, 31.322580645)):
            Rectangle(SKETCH_18_W, SKETCH_18_H)
        with Locations((67.35483871, 31.322580645)):
            Rectangle(SKETCH_18_W_2, SKETCH_18_H_2, mode=Mode.SUBTRACT)
    extrude(amount=EXTRUDE_12_DEPTH)

    # Эскиз19 → Бобышка-Вытянуть14 (add)
    # profile 1 of 2: a face of its own
    with BuildSketch(Plane(origin=(0, 0, 1), x_dir=(-1, 0, 0), z_dir=(0, 0, -1))):
        with Locations((57.15483871, 31.322580645)):
            Circle(SKETCH_19_R)
        with Locations((57.15483871, 31.322580645)):
            Circle(SKETCH_19_R_2, mode=Mode.SUBTRACT)
    # profile 2 of 2: a face of its own
    with BuildSketch(Plane(origin=(0, 0, 1), x_dir=(-1, 0, 0), z_dir=(0, 0, -1))):
        with Locations((77.55483871, 31.322580645)):
            Circle(SKETCH_19_R)
        with Locations((77.55483871, 31.322580645)):
            Circle(SKETCH_19_R_2, mode=Mode.SUBTRACT)
    extrude(amount=-EXTRUDE_14_DEPTH)

    # Эскиз20 → Бобышка-Вытянуть15 (add)
    # profile 1 of 2: a face of its own
    with BuildSketch(Plane(origin=(0, 0, 1), x_dir=(-1, 0, 0), z_dir=(0, 0, -1))):
        with BuildLine():
            Line((77.55483871, 33.522580645), (76.35483871, 33.522580645))
            Line((76.35483871, 33.522580645), (76.35483871, 29.122580645))
            Line((76.35483871, 29.122580645), (77.55483871, 29.122580645))
            ThreePointArc((77.55483871, 29.122580645), (79.75483871, 31.322580645), (77.55483871, 33.522580645))
        make_face()
        with Locations((77.55483871, 31.322580645)):
            Circle(SKETCH_20_R, mode=Mode.SUBTRACT)
    # profile 2 of 2: a face of its own
    with BuildSketch(Plane(origin=(0, 0, 1), x_dir=(-1, 0, 0), z_dir=(0, 0, -1))):
        with BuildLine():
            Line((57.15483871, 33.522580645), (58.35483871, 33.522580645))
            Line((58.35483871, 33.522580645), (58.35483871, 29.122580645))
            Line((58.35483871, 29.122580645), (57.15483871, 29.122580645))
            ThreePointArc((57.15483871, 29.122580645), (54.95483871, 31.322580645), (57.15483871, 33.522580645))
        make_face()
        with Locations((57.15483871, 31.322580645)):
            Circle(SKETCH_20_R, mode=Mode.SUBTRACT)
    extrude(amount=EXTRUDE_15_DEPTH)

    # Эскиз21 → Вырез-Вытянуть11 (cut, through all)
    with BuildSketch(Plane.XZ.offset(-24.322580645)):
        with Locations((-73.885145595, -3)):
            Rectangle(SKETCH_21_W, SKETCH_21_H)
        with Locations((-69.52483871, -3)):
            Rectangle(SKETCH_21_W_2, SKETCH_21_H)
        with Locations((-65.172554283, -3)):
            Rectangle(SKETCH_21_W_3, SKETCH_21_H)
        with Locations((-60.86483871, -3)):
            Rectangle(SKETCH_21_W_2, SKETCH_21_H)
    extrude(amount=-CUT_EXTRUDE_11_DEPTH, mode=Mode.SUBTRACT)

    # Эскиз22 → Вырез-Вытянуть12 (cut, through all)
    with BuildSketch(Plane.ZY.offset(76.35483871)):
        with Locations((-1.5, 27.222580645)):
            Rectangle(SKETCH_22_W, SKETCH_22_H)
        with Locations((-1.5, 35.422580645)):
            Rectangle(SKETCH_22_W, SKETCH_22_H)
    extrude(amount=-CUT_EXTRUDE_12_DEPTH, mode=Mode.SUBTRACT)

    # Эскиз23 → Вырез-Вытянуть13 (cut)
    with BuildSketch(Plane(origin=(0, 0, -9), x_dir=(-1, 0, 0), z_dir=(0, 0, -1))):
        with Locations((67.449459052, 30.98965987)):
            Rectangle(SKETCH_23_W, SKETCH_23_H)
    extrude(amount=-CUT_EXTRUDE_13_DEPTH, mode=Mode.SUBTRACT)

    # Эскиз24 → Бобышка-Вытянуть16 (add)
    with BuildSketch(Plane(origin=(0, 0, -4), x_dir=(-1, 0, 0), z_dir=(0, 0, -1))):
        with Locations((67.35483871, 31.322580645)):
            Rectangle(SKETCH_24_W, SKETCH_24_H)
        with Locations((67.35983871, 31.322580645)):
            Rectangle(SKETCH_24_W_2, SKETCH_24_H_2, mode=Mode.SUBTRACT)
    extrude(amount=-EXTRUDE_16_DEPTH)

    # Эскиз25 → Бобышка-Вытянуть17 (add)
    with BuildSketch(Plane.XY.offset(6)):
        with Locations((-67.35483871, 31.322580645)):
            Rectangle(SKETCH_25_W, SKETCH_25_H)
        with Locations((-67.35483871, 31.331210981)):
            Rectangle(SKETCH_25_W_2, SKETCH_25_H_2, mode=Mode.SUBTRACT)
    extrude(amount=-EXTRUDE_17_DEPTH)

    # Эскиз26 → Бобышка-Вытянуть18 (add)
    with BuildSketch(Plane.ZY.offset(76.35483871)):
        with Locations((1, 36.822580645)):
            Rectangle(SKETCH_26_W, SKETCH_26_H)
        with Locations((1, 25.822580645)):
            Rectangle(SKETCH_26_W, SKETCH_26_H)
    extrude(amount=-EXTRUDE_18_DEPTH)

    # Эскиз27 → Бобышка-Вытянуть19 (add)
    with BuildSketch(Plane(origin=(-58.35483871, 0, 0), x_dir=(0, 0, -1), z_dir=(1, 0, 0))):
        with Locations((-1, 36.822580645)):
            Rectangle(SKETCH_27_W, SKETCH_27_H)
        with Locations((-1, 25.822580645)):
            Rectangle(SKETCH_27_W, SKETCH_27_H)
    extrude(amount=-EXTRUDE_19_DEPTH)

    # Эскиз28 → Бобышка-Вытянуть20 (add)
    with BuildSketch(Plane(origin=(0, 38.322580645, 0), x_dir=(1, 0, 0), z_dir=(0, 1, 0))):
        with Locations((-67.35983871, -1)):
            Rectangle(SKETCH_28_W, SKETCH_28_H)
    extrude(amount=-EXTRUDE_20_DEPTH)

    # Эскиз29 → Бобышка-Вытянуть21 (add)
    with BuildSketch(Plane.XZ.offset(-24.322580645).offset(EXTRUDE_START_2)):
        with Locations((-67.35983871, 1)):
            Rectangle(SKETCH_29_W, SKETCH_29_H)
    extrude(amount=EXTRUDE_21_DEPTH)

    # Эскиз30 → Вырез-Вытянуть14 (cut, through all)
    with BuildSketch(Plane.XZ.offset(-24.322580645)):
        with Locations((-71.35483871, 1.206267463)):
            Rectangle(SKETCH_30_W, SKETCH_30_H)
        with Locations((-63.35483871, 1.206267463)):
            Rectangle(SKETCH_30_W, SKETCH_30_H)
    extrude(amount=-CUT_EXTRUDE_14_DEPTH, mode=Mode.SUBTRACT)

    # Скругление7
    fillet_7_edges = [part.edges().sort_by_distance(p)[0] for p in [
        (-76.35483871, 38.322580645, 1),
        (-58.35483871, 38.322580645, 1),
        (-58.35483871, 24.322580645, 1),
        (-76.35483871, 24.322580645, 1),
    ]]
    fillet(fillet_7_edges, radius=FILLET_7_R)


solid = part.part
